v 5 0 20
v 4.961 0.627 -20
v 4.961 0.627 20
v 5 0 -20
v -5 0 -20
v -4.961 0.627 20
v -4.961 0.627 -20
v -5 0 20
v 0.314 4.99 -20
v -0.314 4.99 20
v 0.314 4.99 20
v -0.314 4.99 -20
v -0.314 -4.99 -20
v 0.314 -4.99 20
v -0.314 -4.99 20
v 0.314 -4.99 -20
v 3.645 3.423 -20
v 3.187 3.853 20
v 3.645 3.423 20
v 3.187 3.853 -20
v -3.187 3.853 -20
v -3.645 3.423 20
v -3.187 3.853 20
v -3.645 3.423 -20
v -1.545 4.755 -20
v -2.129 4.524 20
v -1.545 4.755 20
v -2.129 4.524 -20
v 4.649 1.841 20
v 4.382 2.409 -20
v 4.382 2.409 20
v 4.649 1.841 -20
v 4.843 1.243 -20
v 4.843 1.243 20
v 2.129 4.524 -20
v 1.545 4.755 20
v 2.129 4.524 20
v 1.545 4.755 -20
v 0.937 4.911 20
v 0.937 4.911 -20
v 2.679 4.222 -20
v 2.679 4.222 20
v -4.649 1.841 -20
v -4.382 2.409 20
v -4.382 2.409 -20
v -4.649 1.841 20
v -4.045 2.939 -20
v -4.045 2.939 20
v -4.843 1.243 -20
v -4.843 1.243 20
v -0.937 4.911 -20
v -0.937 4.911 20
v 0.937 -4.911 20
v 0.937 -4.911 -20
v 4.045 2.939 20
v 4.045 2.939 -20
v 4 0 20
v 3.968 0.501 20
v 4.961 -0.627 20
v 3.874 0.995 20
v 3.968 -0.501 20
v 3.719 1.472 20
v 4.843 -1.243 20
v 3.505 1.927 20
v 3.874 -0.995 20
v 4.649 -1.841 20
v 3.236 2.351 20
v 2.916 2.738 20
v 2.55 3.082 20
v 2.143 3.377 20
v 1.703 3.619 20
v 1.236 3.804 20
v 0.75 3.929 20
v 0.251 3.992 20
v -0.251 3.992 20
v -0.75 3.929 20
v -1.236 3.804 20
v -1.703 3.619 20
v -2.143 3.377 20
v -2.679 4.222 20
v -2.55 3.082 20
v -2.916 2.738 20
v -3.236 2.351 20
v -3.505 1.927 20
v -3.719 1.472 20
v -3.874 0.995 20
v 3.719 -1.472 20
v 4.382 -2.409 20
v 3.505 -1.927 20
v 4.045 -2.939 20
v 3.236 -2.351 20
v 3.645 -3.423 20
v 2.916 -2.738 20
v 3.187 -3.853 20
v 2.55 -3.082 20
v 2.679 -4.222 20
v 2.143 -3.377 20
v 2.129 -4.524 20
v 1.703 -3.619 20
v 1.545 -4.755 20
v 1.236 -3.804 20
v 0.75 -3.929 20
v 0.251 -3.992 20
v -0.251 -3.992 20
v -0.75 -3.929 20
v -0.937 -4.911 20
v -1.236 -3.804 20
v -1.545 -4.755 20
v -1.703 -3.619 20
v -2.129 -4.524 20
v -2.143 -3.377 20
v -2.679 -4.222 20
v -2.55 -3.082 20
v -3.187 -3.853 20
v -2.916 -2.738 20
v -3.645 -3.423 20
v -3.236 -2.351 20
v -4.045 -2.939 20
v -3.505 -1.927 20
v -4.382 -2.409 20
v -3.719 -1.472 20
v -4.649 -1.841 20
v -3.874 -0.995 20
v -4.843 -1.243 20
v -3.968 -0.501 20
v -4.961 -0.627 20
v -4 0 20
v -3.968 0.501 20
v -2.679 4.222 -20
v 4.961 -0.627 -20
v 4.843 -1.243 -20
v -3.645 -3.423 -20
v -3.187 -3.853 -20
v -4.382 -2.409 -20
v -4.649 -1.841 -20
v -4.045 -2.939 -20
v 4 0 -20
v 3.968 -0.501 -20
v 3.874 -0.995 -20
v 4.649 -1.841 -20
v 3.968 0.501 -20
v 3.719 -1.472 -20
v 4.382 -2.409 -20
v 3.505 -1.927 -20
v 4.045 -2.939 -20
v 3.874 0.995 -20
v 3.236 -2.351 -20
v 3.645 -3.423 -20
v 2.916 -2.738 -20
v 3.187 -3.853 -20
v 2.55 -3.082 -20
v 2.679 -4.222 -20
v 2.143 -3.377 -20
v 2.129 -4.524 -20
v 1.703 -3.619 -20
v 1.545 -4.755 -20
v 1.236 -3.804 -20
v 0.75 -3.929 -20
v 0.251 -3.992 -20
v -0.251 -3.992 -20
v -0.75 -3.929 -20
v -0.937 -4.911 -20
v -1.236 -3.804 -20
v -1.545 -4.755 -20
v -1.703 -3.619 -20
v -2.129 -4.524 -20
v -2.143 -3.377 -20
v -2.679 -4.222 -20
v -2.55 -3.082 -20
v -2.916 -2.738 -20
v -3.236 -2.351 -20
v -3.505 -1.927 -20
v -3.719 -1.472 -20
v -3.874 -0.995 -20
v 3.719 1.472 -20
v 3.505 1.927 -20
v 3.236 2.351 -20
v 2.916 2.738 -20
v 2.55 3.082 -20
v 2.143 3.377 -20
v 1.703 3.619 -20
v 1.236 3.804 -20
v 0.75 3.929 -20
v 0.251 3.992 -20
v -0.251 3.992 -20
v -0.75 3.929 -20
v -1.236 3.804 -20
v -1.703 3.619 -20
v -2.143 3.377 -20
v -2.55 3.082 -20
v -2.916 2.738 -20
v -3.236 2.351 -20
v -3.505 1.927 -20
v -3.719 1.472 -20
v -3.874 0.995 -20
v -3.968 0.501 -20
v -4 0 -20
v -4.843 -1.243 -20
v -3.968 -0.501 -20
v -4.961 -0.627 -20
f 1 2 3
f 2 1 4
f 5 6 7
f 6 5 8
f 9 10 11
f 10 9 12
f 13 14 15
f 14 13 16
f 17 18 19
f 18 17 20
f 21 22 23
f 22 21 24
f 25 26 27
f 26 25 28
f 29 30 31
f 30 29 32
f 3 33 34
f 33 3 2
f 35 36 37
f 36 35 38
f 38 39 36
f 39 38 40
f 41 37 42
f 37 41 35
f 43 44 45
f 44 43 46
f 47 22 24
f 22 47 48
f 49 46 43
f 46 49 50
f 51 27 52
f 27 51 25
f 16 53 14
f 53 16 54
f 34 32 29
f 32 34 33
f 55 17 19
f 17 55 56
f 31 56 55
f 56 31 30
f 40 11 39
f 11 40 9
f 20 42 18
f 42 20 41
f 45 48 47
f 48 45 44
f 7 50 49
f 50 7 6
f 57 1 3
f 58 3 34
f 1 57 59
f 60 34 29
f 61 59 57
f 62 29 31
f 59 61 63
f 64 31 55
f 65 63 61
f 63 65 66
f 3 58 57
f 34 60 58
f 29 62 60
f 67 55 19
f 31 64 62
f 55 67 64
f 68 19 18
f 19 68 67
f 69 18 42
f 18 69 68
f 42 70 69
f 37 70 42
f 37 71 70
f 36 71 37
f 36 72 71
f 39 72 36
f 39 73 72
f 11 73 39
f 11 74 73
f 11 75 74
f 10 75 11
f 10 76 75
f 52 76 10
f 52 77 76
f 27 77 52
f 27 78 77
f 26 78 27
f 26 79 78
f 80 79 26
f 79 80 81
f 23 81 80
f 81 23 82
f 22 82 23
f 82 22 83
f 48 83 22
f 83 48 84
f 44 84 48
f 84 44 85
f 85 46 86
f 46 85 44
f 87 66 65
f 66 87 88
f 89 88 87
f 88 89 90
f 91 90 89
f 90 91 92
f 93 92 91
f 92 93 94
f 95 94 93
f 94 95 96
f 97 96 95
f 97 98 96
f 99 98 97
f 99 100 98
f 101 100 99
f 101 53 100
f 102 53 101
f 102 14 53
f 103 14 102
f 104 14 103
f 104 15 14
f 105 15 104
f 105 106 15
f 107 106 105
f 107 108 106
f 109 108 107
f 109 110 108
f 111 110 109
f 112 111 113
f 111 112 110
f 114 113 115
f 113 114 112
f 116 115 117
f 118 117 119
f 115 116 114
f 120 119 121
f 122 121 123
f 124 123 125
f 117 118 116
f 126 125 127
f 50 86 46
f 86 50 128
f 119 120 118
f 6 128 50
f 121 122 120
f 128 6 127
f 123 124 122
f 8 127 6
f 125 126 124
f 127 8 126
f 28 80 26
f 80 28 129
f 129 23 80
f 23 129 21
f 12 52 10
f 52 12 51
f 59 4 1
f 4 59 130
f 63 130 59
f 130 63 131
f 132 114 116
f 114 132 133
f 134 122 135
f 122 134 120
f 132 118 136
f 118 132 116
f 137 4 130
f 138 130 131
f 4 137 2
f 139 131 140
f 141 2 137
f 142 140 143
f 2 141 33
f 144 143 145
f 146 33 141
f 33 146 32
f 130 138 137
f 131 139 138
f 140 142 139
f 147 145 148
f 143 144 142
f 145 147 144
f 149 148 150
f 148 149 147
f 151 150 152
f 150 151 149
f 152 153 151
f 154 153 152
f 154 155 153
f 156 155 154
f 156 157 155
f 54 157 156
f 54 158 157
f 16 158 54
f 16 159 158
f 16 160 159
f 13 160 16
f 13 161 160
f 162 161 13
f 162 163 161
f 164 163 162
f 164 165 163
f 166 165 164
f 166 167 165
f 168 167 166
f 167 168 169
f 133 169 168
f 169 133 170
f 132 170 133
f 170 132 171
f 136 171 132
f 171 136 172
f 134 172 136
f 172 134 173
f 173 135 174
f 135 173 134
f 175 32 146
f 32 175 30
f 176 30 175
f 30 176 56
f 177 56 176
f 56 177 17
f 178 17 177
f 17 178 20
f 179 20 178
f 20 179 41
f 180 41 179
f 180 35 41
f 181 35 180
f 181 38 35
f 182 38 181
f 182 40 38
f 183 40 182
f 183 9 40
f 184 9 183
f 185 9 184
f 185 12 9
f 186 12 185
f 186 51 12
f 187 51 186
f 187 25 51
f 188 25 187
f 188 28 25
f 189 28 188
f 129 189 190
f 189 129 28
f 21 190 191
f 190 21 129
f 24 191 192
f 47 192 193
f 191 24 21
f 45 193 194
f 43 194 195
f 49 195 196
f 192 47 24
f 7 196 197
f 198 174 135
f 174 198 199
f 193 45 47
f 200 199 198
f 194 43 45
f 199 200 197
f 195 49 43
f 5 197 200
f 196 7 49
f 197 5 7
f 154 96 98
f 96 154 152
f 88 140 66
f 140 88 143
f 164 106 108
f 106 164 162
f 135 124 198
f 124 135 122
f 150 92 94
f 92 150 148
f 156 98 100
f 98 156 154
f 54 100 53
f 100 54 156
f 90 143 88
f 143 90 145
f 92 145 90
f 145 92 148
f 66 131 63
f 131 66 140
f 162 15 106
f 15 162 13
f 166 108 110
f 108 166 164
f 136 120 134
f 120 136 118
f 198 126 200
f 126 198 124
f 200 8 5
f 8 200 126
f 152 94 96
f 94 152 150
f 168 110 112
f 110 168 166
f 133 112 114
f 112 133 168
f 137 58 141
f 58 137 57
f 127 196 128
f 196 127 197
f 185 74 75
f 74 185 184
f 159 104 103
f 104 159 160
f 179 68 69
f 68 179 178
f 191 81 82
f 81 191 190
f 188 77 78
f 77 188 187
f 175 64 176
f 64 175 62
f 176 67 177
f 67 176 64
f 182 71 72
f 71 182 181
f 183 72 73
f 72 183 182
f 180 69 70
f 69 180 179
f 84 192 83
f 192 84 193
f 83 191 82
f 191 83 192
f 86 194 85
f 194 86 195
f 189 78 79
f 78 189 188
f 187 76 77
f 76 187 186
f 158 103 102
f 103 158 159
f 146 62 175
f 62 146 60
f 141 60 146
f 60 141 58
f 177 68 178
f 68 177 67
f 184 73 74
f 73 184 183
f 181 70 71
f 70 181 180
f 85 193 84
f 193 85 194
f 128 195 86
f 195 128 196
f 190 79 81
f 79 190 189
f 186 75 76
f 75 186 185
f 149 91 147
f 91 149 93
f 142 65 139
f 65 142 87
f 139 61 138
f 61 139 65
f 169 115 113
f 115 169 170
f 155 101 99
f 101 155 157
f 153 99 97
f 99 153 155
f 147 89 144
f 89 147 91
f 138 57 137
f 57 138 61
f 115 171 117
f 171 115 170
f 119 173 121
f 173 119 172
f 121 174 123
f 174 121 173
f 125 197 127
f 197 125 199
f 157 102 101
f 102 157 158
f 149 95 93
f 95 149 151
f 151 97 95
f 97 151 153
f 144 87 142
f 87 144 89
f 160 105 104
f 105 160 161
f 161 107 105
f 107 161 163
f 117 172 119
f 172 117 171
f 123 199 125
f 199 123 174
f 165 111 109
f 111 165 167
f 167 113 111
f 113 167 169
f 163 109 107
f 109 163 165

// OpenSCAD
$fn = 50;


difference() {
	union() {
		translate(v = [0, 0, -20.0000000000]) {
			cylinder(h = 40, r = 5.0000000000);
		}
	}
	union() {
		translate(v = [0, 0, -100.0000000000]) {
			cylinder(h = 200, r = 4);
		}
	}
}
